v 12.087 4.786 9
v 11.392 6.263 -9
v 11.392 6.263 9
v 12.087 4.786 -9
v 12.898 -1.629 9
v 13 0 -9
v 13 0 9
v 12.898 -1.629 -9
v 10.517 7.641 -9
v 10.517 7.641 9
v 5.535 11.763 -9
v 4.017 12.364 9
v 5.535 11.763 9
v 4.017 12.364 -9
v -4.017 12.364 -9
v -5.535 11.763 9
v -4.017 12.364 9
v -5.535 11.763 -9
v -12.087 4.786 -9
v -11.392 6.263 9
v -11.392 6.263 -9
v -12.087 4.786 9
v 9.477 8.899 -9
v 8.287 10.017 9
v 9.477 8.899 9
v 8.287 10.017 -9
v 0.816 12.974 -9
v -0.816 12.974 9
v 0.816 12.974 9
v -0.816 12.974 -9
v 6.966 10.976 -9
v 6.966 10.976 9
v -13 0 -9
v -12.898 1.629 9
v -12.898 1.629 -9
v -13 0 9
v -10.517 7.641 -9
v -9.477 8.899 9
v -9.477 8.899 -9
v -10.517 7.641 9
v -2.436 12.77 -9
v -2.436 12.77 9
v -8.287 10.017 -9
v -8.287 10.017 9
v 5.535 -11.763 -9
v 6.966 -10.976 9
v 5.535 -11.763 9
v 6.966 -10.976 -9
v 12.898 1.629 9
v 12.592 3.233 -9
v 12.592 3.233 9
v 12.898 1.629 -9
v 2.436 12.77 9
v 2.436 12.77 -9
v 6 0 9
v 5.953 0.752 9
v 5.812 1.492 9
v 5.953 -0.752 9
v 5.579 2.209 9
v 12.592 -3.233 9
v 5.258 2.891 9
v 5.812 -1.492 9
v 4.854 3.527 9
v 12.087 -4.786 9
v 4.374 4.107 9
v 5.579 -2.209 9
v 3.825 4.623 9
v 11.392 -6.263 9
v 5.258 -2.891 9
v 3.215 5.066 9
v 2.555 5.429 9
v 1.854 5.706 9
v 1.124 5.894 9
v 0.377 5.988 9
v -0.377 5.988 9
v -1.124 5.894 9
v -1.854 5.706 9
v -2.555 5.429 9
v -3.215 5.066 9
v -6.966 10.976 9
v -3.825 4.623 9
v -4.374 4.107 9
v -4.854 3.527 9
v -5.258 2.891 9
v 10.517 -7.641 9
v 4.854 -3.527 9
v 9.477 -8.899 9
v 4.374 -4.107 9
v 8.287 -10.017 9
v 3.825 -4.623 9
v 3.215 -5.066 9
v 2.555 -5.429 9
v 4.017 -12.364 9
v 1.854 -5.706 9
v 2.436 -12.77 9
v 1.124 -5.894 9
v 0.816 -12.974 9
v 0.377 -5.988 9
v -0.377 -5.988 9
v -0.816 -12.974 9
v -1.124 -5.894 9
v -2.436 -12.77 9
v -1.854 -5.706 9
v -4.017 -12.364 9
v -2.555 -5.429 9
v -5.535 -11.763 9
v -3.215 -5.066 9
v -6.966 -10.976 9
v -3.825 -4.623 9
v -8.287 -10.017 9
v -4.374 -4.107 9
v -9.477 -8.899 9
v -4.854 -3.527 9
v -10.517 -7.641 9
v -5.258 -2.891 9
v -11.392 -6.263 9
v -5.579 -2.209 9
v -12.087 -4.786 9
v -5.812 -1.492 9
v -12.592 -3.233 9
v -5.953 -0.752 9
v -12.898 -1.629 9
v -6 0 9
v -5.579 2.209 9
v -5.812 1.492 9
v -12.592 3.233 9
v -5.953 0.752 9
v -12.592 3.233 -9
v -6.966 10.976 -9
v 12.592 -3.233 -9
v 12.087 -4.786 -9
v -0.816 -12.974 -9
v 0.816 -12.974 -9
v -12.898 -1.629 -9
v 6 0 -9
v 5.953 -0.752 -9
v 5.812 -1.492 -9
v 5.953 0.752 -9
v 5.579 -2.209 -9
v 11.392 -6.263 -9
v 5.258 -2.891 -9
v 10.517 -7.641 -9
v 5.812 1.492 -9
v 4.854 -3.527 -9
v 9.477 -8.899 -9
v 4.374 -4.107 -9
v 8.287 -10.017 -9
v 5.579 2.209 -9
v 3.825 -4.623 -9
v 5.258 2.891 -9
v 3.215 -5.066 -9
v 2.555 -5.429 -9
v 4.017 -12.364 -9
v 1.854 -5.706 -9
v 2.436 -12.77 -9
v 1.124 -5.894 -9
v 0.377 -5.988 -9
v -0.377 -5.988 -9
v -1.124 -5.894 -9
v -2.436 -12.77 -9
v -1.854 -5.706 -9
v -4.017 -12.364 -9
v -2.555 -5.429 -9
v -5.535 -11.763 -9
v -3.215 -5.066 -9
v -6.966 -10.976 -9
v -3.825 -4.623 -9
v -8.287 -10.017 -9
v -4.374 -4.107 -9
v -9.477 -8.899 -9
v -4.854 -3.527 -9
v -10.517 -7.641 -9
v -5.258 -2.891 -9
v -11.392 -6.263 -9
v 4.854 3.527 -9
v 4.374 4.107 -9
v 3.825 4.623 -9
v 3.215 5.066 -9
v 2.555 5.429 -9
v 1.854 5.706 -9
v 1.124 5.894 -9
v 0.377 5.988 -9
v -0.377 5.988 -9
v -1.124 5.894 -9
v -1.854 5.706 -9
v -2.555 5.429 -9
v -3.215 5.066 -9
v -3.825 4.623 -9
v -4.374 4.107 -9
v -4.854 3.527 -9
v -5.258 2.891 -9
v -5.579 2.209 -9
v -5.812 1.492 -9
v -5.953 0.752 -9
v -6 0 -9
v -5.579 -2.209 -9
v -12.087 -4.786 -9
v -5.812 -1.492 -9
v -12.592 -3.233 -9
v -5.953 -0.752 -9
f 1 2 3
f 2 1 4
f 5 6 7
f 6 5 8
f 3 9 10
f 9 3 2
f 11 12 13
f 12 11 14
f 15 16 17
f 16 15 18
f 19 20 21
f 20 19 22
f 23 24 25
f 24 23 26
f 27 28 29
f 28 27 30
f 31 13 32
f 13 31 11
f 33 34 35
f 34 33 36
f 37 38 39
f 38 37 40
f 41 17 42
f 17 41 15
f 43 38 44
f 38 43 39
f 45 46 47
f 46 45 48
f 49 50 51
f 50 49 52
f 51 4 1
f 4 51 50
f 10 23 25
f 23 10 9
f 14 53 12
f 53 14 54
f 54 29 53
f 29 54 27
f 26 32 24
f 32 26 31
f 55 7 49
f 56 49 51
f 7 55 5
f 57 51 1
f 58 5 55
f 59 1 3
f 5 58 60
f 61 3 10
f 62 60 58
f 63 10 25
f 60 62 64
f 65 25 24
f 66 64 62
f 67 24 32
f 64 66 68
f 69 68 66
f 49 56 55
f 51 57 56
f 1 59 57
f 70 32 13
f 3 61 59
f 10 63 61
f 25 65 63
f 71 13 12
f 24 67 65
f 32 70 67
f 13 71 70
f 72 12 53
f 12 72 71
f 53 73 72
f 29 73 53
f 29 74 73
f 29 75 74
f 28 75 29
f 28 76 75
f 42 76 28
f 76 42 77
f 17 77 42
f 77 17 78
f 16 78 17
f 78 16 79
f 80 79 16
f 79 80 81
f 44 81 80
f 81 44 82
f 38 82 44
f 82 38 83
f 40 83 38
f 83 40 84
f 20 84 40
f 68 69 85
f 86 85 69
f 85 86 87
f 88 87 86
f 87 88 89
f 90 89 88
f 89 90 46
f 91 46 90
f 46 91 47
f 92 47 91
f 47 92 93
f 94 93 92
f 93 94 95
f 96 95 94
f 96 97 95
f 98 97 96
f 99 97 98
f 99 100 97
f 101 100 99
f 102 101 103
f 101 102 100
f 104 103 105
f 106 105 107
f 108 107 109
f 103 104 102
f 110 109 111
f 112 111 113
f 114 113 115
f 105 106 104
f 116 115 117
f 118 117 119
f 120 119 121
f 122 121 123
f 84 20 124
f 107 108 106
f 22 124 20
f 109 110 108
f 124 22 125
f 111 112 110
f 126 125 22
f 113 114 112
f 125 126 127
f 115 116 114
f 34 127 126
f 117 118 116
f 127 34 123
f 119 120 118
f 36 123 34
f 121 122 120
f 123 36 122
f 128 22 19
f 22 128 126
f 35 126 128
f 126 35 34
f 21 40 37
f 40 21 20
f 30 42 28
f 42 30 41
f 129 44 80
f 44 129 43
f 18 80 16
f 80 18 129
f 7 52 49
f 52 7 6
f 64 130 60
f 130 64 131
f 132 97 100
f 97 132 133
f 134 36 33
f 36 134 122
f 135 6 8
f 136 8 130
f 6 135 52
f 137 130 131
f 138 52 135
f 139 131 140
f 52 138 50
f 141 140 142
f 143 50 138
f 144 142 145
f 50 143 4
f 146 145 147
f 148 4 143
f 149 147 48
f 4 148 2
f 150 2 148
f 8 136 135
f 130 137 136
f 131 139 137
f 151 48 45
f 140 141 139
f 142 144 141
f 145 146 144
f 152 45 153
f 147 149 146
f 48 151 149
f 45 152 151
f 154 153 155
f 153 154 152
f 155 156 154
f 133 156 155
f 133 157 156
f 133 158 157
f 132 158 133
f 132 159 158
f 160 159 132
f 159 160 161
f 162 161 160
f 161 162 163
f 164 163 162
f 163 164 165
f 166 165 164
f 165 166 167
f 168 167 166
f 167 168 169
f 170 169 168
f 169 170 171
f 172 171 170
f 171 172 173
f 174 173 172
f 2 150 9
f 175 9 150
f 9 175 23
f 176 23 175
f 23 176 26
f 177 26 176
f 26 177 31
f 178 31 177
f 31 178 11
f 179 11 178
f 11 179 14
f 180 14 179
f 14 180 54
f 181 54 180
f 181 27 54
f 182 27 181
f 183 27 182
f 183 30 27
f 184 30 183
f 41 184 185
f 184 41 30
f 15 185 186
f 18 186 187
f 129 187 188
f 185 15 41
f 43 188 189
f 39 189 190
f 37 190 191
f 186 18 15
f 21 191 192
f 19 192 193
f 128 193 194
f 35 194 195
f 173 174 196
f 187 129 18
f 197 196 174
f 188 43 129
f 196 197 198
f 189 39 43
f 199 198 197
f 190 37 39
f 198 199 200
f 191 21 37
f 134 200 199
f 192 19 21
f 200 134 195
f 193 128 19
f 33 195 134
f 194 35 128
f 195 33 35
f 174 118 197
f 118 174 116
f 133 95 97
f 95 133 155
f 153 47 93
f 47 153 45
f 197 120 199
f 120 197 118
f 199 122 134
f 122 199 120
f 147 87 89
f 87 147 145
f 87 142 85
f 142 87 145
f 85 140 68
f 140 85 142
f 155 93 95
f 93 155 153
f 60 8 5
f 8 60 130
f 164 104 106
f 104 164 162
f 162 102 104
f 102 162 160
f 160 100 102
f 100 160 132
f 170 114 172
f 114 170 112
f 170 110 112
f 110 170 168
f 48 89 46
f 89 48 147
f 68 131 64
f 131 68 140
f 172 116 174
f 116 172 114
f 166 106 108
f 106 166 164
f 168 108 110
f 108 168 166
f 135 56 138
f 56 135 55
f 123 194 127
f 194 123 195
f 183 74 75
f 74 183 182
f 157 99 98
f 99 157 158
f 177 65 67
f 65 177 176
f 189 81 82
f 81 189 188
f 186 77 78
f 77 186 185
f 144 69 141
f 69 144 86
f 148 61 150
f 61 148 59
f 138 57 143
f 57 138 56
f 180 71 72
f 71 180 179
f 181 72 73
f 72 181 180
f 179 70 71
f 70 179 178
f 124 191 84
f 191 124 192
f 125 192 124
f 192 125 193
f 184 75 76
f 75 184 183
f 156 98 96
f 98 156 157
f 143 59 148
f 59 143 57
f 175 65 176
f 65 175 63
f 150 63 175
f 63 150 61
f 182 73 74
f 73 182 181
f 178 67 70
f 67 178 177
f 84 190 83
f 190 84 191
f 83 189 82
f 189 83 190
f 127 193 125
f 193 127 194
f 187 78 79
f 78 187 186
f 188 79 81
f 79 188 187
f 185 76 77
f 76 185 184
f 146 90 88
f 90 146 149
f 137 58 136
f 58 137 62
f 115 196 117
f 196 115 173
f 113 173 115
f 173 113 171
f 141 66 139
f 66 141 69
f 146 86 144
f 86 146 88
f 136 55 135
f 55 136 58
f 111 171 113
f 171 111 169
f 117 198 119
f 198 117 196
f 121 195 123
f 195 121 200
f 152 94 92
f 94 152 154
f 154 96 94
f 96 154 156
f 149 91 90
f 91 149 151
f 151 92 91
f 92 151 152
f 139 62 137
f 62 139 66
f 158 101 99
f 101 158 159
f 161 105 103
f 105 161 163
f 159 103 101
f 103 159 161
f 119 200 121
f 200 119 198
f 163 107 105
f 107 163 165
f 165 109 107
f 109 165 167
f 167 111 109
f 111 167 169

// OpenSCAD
$fn = 50;


difference() {
	union() {
		translate(v = [0, 0, -9.0000000000]) {
			cylinder(h = 18, r = 13.0000000000);
		}
	}
	union() {
		translate(v = [0, 0, -100.0000000000]) {
			cylinder(h = 200, r = 6);
		}
	}
}
